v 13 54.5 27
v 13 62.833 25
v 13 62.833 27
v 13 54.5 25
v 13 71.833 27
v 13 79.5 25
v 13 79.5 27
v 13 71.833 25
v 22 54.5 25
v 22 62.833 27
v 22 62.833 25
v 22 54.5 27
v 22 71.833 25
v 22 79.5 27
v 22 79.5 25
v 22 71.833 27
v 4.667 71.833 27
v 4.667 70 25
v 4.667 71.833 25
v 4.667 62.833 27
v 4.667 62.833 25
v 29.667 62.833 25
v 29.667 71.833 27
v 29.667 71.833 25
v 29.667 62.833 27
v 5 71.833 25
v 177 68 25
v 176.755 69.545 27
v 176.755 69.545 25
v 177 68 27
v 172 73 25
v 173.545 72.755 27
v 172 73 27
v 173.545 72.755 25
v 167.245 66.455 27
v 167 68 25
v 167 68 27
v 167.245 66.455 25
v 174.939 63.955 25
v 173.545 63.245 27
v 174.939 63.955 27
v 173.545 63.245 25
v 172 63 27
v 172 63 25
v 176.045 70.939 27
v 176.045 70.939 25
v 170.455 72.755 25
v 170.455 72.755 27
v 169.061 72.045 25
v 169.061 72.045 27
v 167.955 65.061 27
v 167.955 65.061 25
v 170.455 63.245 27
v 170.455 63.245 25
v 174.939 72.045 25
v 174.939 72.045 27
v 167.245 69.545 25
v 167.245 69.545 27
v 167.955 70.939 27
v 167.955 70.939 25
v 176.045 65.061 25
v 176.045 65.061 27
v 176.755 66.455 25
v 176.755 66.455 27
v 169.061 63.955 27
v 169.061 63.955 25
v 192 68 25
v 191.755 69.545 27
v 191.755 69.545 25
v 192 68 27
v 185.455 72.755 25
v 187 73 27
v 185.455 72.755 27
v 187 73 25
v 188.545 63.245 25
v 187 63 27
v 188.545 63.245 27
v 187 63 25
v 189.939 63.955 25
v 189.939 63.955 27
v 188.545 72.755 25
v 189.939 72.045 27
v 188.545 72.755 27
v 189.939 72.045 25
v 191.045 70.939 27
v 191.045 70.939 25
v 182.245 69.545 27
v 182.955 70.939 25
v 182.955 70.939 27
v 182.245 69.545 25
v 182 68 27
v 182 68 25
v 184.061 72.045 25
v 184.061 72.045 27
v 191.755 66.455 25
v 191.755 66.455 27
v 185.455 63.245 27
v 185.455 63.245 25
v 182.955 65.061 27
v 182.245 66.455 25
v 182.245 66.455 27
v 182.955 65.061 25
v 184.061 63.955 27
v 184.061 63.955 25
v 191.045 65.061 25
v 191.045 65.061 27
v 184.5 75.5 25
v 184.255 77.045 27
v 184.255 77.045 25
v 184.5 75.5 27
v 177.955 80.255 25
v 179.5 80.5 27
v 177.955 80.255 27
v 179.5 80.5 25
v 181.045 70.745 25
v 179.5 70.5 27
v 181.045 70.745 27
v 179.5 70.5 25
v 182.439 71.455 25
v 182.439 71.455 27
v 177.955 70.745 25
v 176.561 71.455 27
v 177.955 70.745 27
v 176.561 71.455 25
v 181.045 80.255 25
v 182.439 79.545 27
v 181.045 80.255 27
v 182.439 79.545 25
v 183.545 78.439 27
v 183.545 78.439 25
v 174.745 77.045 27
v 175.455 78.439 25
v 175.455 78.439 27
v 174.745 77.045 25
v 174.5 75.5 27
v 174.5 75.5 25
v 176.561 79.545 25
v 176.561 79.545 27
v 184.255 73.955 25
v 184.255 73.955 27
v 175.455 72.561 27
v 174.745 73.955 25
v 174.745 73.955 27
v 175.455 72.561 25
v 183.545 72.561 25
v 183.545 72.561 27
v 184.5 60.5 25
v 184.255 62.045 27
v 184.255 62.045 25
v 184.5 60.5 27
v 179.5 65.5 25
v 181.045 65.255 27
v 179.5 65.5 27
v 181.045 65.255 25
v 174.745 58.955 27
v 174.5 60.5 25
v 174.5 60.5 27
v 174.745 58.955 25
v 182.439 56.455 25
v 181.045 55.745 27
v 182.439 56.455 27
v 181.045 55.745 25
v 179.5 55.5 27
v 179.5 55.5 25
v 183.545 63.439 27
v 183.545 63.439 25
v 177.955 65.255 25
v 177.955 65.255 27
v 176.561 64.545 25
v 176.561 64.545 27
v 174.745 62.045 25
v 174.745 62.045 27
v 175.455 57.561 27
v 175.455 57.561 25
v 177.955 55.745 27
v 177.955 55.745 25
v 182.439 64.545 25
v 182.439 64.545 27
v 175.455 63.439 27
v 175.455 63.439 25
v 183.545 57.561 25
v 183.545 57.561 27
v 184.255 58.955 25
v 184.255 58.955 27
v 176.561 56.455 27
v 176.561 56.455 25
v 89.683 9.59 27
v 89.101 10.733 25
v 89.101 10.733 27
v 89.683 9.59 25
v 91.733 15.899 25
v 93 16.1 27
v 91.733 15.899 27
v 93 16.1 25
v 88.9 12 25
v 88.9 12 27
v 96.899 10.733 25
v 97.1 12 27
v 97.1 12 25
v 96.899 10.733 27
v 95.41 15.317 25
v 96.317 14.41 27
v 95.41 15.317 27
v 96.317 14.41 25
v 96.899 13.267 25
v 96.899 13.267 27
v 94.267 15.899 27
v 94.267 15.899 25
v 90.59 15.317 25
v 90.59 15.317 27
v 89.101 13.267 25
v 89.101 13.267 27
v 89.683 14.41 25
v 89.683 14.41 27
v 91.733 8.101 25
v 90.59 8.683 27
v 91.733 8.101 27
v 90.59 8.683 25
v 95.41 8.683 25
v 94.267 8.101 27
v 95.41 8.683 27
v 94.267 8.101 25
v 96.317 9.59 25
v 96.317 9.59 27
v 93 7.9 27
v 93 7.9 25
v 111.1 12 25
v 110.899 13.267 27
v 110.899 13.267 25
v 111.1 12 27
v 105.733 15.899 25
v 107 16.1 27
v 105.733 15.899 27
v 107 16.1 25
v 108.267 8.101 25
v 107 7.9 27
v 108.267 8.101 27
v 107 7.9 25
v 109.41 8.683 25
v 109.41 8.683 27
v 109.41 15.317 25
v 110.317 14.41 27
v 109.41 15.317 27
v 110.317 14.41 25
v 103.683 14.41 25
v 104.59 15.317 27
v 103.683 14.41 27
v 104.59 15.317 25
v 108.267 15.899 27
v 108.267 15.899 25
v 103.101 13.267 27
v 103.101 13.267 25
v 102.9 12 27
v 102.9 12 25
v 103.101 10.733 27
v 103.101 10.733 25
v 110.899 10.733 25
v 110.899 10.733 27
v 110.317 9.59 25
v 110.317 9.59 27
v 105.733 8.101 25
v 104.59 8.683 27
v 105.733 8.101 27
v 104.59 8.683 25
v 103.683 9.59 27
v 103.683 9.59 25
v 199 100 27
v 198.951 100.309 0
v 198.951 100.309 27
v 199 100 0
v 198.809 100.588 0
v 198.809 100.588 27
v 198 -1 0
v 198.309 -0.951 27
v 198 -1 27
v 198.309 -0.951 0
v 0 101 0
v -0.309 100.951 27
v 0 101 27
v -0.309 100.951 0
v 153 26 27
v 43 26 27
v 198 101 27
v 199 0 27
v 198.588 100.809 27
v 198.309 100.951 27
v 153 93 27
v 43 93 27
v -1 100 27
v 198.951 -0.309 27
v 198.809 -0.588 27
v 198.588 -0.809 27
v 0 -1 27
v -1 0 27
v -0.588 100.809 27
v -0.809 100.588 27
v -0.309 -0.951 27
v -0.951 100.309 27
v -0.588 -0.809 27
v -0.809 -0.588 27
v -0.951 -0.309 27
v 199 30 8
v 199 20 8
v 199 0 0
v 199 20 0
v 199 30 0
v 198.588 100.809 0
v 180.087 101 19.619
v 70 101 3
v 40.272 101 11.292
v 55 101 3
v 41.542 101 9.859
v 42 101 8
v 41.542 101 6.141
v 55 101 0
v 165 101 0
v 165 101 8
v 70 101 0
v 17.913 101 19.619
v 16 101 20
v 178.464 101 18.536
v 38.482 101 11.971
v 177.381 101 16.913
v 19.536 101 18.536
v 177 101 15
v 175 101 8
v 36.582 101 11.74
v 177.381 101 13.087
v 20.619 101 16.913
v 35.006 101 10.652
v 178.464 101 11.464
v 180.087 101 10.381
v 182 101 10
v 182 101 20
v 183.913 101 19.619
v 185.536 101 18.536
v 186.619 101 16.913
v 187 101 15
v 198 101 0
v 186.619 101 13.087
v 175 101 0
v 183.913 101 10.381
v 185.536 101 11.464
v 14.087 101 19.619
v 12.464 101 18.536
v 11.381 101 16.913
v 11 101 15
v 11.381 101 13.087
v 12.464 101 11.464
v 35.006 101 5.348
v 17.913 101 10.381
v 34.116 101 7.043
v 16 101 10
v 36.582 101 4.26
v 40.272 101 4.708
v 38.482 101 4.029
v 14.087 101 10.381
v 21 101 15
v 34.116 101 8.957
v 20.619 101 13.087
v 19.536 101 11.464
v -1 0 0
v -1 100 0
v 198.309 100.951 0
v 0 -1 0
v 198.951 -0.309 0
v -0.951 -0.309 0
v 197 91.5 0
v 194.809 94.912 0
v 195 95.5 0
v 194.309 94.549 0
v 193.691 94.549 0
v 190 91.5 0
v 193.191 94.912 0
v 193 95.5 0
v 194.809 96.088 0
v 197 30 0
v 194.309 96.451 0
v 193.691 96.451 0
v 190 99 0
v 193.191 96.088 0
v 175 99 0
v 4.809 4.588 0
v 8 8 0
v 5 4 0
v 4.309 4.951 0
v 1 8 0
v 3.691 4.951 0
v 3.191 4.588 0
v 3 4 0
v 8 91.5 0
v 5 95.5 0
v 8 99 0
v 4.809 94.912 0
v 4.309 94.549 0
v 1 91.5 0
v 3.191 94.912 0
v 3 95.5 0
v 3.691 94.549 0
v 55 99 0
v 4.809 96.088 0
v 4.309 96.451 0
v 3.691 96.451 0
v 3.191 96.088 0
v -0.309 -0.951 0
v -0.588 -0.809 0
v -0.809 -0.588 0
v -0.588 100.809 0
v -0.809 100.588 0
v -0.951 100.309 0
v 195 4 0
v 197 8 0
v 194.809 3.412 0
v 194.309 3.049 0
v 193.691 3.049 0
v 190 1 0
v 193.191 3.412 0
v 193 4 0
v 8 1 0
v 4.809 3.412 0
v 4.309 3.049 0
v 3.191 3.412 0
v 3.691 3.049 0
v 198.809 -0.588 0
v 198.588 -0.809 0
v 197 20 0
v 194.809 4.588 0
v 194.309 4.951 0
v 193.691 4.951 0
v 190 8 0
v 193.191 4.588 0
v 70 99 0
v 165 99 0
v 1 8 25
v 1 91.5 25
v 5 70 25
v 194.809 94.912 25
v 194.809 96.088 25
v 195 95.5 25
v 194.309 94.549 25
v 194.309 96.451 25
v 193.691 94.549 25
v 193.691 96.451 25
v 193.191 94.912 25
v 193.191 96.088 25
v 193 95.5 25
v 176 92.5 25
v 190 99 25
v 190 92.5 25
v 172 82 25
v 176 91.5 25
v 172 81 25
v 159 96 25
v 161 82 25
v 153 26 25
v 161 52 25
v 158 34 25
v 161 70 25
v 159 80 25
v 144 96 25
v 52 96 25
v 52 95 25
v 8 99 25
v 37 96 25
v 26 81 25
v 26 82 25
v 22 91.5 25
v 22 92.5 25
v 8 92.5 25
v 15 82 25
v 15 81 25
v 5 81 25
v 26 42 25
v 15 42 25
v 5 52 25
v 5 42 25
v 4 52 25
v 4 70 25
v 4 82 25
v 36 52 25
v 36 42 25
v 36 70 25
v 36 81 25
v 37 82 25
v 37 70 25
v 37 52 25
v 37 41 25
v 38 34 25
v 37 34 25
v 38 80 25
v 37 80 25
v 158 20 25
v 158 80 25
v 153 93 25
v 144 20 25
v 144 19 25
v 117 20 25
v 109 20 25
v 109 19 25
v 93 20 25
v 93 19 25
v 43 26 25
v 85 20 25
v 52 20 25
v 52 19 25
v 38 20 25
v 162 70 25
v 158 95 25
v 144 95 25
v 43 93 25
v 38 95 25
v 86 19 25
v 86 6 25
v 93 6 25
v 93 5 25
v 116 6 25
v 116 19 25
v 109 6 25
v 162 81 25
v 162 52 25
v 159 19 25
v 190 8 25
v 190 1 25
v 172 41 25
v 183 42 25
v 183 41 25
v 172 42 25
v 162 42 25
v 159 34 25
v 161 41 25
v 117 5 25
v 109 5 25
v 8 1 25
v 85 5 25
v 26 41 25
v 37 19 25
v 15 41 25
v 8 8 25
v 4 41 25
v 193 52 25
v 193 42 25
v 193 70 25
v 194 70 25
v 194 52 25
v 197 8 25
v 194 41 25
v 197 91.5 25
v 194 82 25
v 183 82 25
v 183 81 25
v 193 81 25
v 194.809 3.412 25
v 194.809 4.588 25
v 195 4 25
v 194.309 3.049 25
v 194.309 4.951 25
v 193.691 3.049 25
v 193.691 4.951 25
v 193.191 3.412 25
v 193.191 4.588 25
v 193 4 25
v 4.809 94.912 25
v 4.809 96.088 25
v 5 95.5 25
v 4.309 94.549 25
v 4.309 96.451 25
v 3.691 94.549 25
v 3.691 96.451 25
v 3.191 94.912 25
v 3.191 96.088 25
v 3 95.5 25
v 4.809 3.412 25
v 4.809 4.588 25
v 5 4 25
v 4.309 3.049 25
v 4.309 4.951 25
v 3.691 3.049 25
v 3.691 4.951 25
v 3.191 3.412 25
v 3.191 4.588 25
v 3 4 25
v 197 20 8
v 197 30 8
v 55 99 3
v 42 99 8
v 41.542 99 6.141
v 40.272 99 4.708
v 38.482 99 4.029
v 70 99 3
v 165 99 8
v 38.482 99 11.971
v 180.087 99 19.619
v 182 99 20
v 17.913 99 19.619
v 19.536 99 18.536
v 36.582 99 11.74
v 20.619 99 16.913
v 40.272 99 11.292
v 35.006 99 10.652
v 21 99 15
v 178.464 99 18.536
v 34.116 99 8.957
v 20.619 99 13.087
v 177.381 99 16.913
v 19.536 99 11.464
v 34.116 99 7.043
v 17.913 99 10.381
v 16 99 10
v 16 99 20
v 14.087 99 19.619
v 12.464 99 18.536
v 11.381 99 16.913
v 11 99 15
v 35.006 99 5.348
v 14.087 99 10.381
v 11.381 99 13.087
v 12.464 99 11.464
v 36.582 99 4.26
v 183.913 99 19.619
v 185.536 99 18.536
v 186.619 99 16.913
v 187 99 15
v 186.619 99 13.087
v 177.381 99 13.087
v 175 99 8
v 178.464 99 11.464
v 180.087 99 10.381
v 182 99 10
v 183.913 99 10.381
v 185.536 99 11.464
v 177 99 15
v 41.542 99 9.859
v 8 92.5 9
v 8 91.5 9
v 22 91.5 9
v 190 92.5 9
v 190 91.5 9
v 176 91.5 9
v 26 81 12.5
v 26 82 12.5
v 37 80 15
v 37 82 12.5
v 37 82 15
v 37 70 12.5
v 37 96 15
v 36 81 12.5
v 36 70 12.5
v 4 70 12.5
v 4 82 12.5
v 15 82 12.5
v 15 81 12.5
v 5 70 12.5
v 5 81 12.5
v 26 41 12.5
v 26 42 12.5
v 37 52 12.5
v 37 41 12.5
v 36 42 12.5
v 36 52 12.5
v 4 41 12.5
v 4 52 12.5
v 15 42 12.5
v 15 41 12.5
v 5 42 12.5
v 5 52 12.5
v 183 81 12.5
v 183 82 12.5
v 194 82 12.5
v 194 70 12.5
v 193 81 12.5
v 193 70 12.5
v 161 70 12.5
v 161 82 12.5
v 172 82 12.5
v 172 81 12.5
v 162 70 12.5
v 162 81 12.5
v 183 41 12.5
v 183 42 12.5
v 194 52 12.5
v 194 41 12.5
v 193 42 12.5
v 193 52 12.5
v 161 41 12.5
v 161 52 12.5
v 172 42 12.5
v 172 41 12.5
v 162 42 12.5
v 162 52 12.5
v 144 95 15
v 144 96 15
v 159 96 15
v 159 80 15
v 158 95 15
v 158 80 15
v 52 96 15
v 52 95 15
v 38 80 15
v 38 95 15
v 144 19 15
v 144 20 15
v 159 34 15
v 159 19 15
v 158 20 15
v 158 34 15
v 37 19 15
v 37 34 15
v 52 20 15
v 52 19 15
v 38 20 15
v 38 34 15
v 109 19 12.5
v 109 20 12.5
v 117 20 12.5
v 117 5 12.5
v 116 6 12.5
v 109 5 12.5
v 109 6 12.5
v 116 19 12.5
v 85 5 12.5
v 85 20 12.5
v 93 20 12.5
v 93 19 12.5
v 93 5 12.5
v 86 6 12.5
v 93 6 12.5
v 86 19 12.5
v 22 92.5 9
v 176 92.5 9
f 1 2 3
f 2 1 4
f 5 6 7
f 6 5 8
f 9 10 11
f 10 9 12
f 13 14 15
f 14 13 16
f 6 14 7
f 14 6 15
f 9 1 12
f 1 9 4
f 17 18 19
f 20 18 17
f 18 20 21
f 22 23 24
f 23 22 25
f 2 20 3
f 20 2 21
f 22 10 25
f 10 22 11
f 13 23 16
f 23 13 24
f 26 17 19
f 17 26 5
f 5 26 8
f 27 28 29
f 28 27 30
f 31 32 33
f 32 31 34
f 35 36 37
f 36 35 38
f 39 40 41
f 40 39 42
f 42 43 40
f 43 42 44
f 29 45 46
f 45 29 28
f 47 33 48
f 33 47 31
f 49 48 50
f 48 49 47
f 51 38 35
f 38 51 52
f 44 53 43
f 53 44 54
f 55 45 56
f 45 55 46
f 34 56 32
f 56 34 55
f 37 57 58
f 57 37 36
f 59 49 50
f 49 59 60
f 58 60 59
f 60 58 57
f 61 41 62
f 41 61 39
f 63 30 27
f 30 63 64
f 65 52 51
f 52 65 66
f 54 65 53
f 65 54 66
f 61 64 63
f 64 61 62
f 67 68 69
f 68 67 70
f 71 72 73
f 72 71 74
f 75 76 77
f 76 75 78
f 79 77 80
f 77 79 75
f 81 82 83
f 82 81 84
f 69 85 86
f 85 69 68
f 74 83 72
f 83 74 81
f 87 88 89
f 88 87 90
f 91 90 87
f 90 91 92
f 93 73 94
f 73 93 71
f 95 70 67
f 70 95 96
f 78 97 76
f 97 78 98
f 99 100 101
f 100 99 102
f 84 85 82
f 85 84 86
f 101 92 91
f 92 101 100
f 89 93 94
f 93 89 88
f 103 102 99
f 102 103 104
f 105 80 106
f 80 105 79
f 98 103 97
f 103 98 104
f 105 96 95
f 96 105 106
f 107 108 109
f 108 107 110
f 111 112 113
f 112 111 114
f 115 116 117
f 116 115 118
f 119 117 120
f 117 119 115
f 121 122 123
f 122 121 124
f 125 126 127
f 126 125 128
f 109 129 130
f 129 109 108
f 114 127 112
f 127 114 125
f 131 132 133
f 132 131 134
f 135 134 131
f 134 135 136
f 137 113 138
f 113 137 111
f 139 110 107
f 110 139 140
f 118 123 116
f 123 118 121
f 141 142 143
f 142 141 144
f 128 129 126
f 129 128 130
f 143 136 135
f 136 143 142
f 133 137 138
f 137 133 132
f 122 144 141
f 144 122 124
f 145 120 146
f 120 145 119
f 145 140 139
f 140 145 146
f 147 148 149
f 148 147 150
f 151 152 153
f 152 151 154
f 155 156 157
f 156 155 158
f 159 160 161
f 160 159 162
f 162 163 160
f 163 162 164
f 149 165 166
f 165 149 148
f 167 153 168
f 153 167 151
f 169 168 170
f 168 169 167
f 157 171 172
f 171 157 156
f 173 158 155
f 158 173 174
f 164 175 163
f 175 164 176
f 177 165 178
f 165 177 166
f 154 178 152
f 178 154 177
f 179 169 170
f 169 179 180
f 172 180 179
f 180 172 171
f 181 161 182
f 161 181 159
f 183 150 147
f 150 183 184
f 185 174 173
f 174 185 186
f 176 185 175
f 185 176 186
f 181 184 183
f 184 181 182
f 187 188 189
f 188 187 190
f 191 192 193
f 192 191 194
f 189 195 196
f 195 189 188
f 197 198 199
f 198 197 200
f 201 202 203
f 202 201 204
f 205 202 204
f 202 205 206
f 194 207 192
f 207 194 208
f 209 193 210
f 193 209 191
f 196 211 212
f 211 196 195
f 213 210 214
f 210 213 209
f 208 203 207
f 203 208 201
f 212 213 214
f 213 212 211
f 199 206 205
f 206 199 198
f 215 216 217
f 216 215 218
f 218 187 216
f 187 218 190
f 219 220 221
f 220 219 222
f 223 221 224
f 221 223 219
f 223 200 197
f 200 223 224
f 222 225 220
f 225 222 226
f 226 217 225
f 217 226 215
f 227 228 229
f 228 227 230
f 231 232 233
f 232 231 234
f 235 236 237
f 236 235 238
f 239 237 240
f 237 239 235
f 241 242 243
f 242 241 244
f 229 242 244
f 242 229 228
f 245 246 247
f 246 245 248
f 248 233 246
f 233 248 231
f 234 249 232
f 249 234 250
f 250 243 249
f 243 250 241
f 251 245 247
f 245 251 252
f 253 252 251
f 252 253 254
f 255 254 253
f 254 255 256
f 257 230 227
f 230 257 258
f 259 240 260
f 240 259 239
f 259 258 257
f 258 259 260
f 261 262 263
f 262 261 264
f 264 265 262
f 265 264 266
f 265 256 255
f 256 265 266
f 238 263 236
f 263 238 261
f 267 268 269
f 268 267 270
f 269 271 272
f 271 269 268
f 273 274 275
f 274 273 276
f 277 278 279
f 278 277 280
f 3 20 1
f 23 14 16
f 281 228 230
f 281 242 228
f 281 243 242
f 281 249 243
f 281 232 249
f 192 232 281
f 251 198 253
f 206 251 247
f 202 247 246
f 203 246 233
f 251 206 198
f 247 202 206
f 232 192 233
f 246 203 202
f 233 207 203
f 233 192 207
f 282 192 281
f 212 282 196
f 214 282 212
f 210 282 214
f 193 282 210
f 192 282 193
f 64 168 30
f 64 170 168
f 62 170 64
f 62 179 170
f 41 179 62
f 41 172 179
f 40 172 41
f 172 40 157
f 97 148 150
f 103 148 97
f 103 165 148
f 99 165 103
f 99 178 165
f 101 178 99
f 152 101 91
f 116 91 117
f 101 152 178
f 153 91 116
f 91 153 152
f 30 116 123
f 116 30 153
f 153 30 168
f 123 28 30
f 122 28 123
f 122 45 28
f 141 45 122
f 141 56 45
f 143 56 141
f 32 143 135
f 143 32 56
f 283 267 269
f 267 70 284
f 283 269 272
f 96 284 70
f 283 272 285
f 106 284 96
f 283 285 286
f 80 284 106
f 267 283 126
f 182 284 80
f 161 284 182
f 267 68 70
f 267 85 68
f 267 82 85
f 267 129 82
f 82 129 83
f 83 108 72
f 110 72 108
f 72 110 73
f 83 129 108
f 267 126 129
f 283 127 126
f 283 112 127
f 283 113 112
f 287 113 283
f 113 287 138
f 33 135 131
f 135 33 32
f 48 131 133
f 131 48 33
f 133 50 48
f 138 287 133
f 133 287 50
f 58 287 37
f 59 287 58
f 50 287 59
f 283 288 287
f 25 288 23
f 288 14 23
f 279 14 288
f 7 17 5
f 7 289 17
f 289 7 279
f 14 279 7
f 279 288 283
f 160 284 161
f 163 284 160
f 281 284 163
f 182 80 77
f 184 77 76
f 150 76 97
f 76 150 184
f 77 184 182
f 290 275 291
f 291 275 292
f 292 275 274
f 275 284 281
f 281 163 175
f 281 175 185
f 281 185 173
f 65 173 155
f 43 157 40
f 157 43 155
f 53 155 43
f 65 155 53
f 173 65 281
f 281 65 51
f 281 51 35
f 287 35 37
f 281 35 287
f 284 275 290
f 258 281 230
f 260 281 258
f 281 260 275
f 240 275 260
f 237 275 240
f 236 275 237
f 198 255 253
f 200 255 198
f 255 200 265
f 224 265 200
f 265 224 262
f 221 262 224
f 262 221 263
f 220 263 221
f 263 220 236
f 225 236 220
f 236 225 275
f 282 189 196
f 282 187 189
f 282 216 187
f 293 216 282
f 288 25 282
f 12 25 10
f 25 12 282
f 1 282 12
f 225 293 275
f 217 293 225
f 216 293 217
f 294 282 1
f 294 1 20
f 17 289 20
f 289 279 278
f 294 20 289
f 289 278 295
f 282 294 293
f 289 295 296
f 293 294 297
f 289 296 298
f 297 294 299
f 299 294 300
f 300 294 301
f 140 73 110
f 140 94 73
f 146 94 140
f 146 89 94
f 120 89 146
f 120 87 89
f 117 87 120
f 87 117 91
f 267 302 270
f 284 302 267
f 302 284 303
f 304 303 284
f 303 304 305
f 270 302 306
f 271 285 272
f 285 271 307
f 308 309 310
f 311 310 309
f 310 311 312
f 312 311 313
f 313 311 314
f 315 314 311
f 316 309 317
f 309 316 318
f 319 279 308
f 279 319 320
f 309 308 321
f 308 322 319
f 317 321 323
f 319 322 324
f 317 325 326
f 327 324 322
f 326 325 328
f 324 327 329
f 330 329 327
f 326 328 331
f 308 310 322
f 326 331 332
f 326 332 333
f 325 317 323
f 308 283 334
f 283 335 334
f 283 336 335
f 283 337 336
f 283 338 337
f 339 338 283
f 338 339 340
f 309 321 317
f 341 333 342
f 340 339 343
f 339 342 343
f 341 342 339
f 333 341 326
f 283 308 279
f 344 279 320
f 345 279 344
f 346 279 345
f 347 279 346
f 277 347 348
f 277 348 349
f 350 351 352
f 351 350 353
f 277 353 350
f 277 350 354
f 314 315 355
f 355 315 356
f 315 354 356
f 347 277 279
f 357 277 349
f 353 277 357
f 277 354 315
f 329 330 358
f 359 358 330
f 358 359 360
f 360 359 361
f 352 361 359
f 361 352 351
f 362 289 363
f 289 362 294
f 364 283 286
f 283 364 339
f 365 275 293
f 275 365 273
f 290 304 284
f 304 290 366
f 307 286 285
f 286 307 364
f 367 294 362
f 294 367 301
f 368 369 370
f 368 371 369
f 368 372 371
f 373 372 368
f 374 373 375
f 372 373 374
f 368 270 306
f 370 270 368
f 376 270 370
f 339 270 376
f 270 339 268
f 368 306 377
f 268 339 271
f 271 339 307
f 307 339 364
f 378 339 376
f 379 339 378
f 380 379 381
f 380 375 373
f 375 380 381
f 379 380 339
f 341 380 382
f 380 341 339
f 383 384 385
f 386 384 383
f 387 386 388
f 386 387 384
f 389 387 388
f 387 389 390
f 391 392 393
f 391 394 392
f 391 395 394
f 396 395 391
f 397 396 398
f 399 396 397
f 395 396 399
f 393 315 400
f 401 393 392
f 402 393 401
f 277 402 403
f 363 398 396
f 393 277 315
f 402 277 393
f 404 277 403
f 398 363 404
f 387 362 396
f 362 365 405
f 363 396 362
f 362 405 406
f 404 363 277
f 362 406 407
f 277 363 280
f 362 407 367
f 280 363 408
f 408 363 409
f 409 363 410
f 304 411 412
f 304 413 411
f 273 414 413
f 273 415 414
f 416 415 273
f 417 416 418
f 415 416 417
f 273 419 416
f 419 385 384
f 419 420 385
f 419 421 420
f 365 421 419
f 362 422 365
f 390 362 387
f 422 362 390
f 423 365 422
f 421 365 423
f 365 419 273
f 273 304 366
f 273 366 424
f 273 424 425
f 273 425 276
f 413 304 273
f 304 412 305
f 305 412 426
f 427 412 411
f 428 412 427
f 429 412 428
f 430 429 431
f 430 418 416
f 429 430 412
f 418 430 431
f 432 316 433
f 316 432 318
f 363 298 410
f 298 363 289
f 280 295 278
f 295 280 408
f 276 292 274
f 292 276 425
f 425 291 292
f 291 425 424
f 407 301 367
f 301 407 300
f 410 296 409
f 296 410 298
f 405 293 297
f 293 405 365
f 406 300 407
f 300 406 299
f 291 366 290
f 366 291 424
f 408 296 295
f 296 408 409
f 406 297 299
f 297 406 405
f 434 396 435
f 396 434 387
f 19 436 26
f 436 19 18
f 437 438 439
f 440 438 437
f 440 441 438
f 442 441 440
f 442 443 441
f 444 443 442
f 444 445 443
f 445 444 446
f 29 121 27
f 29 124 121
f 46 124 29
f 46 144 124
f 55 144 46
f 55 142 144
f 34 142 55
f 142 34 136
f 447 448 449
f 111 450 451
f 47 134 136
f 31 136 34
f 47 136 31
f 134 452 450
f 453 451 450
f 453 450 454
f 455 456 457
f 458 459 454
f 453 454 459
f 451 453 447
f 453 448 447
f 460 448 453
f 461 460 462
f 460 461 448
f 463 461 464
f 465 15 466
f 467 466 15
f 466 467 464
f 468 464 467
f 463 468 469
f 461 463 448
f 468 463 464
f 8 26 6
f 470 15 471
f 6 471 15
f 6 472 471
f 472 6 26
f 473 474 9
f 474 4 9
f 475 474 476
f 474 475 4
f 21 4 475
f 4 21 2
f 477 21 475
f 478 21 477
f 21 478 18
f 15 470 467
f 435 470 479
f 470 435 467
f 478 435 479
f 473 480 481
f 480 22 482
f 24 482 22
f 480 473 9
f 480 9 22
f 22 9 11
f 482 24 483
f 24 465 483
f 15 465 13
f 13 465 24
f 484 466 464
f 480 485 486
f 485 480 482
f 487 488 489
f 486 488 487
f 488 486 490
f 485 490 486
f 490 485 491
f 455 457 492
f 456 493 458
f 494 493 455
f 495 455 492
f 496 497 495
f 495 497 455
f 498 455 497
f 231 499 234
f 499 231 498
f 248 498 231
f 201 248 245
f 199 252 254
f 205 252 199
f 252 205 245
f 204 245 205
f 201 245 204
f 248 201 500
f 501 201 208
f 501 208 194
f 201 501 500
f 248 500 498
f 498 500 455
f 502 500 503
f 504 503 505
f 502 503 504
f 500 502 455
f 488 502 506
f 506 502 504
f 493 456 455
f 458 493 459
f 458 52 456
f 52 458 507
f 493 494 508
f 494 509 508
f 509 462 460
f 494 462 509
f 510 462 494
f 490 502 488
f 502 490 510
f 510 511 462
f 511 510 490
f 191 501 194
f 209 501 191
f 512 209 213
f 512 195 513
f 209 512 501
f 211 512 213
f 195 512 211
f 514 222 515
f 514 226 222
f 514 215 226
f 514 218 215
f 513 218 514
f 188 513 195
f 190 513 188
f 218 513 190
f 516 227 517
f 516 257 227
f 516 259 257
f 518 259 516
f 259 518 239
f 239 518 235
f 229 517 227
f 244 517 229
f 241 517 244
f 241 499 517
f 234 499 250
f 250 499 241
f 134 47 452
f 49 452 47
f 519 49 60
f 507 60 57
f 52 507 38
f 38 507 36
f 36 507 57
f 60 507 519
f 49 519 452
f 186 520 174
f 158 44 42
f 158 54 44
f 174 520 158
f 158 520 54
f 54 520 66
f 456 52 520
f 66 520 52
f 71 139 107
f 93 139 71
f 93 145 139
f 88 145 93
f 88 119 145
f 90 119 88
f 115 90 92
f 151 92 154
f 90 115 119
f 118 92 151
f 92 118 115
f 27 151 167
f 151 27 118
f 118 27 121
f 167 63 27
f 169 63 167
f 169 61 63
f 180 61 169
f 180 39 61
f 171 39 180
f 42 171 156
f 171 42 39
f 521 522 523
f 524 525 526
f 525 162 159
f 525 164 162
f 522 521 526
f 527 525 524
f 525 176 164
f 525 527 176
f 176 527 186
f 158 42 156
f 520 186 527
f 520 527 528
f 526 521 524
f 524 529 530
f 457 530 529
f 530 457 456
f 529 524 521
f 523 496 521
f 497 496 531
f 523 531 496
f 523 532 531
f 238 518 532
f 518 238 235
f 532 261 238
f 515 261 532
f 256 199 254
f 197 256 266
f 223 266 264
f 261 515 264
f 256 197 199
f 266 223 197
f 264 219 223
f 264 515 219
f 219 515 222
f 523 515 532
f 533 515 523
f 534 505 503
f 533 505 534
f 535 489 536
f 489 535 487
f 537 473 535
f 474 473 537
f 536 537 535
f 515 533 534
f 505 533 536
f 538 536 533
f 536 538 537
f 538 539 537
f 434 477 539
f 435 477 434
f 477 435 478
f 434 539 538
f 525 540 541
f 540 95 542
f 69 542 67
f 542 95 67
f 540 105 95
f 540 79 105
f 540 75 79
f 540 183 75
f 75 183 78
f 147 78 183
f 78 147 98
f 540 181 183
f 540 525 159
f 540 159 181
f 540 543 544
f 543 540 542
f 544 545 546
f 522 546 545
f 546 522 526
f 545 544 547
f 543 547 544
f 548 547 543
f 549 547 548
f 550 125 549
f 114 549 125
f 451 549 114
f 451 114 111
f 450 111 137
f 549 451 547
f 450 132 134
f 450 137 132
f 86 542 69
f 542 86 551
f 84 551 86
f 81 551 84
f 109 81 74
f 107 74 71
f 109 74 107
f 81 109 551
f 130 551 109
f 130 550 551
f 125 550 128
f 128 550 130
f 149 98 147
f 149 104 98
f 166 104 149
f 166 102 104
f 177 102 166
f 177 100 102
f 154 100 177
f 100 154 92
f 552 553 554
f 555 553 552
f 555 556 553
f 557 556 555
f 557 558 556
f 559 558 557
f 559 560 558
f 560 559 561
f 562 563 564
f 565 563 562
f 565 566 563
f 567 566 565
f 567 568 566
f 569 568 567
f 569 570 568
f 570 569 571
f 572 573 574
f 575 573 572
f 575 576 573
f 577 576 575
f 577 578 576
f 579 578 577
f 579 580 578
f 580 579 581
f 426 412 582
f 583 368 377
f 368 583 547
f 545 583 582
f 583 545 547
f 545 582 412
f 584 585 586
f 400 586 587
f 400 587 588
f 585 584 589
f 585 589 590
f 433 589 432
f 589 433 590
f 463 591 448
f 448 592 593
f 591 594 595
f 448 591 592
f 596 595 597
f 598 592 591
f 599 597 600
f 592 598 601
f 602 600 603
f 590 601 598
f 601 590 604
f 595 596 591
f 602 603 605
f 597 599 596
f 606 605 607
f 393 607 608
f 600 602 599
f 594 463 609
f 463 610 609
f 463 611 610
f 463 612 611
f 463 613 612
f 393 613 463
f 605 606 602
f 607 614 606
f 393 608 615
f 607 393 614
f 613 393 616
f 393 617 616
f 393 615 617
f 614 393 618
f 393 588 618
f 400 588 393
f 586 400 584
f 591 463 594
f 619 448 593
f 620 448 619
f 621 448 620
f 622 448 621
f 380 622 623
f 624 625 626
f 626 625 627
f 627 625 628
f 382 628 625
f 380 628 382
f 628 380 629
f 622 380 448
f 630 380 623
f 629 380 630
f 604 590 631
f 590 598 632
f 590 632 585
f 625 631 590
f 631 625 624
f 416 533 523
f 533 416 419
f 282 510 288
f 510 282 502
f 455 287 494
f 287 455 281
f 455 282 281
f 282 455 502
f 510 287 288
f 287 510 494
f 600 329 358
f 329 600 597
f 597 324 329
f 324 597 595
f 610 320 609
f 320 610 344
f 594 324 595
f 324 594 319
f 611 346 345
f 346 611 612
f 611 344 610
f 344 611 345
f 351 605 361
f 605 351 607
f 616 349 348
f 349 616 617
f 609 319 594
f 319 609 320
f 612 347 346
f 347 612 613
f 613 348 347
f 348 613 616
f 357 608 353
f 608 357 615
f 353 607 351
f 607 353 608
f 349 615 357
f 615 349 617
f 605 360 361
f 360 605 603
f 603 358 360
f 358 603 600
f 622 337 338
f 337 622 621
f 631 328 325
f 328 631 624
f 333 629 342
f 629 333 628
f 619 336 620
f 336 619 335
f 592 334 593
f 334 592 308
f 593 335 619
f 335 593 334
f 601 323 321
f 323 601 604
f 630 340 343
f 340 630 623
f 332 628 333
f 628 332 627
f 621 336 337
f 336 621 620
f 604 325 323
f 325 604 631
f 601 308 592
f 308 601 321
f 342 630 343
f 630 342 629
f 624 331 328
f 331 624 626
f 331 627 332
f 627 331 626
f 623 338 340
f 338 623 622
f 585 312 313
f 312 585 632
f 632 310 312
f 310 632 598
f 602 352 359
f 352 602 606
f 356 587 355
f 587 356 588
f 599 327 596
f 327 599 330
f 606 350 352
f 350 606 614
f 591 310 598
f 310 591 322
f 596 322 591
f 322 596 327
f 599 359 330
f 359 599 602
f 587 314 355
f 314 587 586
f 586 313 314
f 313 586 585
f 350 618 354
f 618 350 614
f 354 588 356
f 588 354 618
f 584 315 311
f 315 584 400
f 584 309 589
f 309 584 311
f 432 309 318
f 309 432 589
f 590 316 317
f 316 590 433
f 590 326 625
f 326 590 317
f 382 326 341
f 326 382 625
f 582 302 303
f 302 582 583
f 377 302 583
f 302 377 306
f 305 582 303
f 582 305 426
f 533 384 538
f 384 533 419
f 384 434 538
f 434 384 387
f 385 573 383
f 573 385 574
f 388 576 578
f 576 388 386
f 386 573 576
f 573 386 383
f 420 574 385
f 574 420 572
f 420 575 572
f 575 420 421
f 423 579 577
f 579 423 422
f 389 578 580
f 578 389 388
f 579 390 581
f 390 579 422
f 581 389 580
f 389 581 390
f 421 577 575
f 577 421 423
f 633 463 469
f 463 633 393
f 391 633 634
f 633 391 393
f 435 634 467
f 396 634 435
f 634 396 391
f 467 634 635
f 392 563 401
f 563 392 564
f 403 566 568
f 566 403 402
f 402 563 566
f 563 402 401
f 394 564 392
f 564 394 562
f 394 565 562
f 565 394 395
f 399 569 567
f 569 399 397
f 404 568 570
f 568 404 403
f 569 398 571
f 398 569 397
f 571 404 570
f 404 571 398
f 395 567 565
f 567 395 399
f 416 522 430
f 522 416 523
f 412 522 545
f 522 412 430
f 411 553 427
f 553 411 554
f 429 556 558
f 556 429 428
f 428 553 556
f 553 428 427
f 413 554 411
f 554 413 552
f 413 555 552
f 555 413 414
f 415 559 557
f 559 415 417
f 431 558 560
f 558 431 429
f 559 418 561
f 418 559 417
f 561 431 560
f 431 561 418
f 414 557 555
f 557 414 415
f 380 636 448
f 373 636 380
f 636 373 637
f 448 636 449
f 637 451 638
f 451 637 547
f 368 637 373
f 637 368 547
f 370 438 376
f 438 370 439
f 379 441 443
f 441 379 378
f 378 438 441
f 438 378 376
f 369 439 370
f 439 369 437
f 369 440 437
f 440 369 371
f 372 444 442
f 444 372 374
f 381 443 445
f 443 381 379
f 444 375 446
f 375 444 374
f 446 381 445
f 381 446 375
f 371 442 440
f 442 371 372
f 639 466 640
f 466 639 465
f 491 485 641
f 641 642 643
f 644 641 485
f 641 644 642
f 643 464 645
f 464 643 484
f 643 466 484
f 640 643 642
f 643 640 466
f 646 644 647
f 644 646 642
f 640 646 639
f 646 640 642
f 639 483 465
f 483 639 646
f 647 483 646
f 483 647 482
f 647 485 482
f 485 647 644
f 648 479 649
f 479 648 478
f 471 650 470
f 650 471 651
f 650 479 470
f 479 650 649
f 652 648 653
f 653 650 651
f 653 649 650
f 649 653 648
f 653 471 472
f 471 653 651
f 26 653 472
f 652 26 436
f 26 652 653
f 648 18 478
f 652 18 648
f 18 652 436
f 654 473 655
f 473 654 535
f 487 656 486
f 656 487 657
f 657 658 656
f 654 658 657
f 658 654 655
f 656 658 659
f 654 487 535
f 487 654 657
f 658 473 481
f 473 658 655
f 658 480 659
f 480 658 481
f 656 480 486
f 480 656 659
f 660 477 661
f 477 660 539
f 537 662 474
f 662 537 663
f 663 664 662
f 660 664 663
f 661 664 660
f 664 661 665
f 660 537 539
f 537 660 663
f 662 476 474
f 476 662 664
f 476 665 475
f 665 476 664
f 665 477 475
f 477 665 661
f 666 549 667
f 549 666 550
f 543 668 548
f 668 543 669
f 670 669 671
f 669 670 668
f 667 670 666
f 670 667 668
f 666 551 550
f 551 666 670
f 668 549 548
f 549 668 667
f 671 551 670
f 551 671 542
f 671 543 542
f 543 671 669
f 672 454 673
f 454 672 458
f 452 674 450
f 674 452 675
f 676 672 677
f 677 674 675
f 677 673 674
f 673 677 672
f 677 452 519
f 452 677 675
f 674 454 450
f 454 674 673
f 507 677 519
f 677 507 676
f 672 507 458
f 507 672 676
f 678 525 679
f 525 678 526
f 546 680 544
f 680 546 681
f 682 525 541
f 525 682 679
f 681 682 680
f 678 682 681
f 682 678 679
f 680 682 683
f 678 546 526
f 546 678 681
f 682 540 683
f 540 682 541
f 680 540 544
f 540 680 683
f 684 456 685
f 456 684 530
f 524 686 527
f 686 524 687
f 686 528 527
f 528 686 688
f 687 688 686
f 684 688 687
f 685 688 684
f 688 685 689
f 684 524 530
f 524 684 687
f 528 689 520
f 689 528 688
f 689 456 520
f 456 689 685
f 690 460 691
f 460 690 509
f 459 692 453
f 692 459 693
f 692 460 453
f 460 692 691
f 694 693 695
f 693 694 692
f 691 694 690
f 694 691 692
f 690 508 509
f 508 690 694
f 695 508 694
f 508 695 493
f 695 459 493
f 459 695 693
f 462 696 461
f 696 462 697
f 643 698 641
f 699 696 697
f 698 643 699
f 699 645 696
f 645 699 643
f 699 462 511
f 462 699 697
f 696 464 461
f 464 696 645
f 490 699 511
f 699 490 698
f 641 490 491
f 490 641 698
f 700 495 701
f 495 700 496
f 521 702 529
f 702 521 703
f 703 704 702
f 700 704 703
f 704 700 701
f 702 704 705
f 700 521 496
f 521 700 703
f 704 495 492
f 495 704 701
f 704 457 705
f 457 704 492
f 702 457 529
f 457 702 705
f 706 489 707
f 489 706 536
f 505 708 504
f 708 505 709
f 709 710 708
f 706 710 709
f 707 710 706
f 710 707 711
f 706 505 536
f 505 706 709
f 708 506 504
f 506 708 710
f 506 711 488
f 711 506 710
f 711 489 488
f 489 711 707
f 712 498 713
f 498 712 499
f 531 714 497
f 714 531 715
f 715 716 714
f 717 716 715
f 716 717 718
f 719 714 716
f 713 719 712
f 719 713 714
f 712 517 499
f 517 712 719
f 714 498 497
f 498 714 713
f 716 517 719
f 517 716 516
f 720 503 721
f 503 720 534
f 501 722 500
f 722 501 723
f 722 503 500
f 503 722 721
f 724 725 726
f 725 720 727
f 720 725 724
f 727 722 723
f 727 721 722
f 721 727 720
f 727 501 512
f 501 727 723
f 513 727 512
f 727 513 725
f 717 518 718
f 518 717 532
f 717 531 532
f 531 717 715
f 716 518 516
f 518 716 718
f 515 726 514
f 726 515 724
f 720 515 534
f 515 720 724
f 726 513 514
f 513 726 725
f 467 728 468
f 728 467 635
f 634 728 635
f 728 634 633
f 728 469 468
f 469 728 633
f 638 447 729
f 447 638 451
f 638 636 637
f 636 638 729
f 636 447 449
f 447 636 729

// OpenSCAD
// file: common.scad
screenExtW = 120;
screenExtH = 75;
screenIntW = 110;
screenIntH = 67;
screenZ = 3;
screenIntX = 5;
screenIntY = 6;

H  = 100;
W = 44 * 2 + screenIntW; // 198
Z   = 25;
thickness = 1;

dpadX = 13;
dpadY = 54.5;
buttonsX = W-26;
buttonsY = 68;

jackX = 38;
jackZ = 8;

volumeX = 55;
volumeW = 15;
volumeH = 5;

screenX = 38;
screenY = 20;

pcbW = 31;
pcbH = 39;

pillar = 8;
pillarHole = 1;

resetStartPcbW =30;
resetStartPcbH = 13;

batteryW = 61;
batteryH = 36;
batteryZ = 8;

module holder (x, y, w, h, attachH, attachW) {
        attachThick = 1;
        // top (left)
        translate([x-attachW+attachThick, y, Z-attachH]) cube([attachW, attachThick, attachH]);
        // left (top)
        translate([x, y-attachW, Z-attachH]) cube([attachThick, attachW, attachH]);
        // top (right)
        translate([x-w-attachThick, y, Z-attachH]) cube([attachW, attachThick, attachH]);
        // right (top)
        translate([x-w-attachThick, y-attachW, Z-attachH]) cube([attachThick, attachW, attachH]);
        // bottom(left)
        translate([x-attachW+attachThick, y-h-attachThick, Z-attachH]) cube([attachW, attachThick, attachH]);
        // left (bottom)
        translate([x, y-h-attachThick, Z-attachH]) cube([attachThick, attachW, attachH]);
        // top (right)
        translate([x-w-attachThick, y-h-attachThick, Z-attachH]) cube([attachW, attachThick, attachH]);
        // right (bottom)
        translate([x-w-attachThick, y-h-attachThick, Z-attachH]) cube([attachThick, attachW, attachH]);
}
// main file
include <common.scad>;

bigButtonX = 16;
bigButtonY = 10;

DEBUG=false;

difference () {
    union () {
        difference () {
            // box
            minkowski() {
                cube([W,H,thickness+Z]);
                cylinder(r=1,h=1,  $fn=20);
            }
            // extrusion
            translate([thickness, thickness, -1]) cube([W-(2*thickness) ,H-(2 * thickness),Z+1]);

            // screen extrusion
            translate([screenX+screenIntX, screenY+screenIntY, Z-1]) cube([screenIntW, screenIntH, screenZ+1]);

            dpad(dpadX, dpadY);
            buttons(buttonsX, buttonsY);
            startResetHoles(W/2+thickness, 12);

            // top d-pad button - hole
            translate([bigButtonX, H+thickness+1, Z-bigButtonY]) rotate([90, 0, 0]) cylinder(r=5,h=thickness*20);

            // top buttons button - hole
            translate([W-bigButtonX, H+thickness+1, Z-bigButtonY]) rotate([90, 0, 0]) cylinder(r=5,h=thickness*20);

            // Jack
            translate([jackX, H+thickness+1, jackZ]) rotate([90, 0, 0]) cylinder(r=4,h=thickness*20);

            // volume
            translate([volumeX, H-thickness-5, -1]) cube([volumeW, 10, volumeH-1]);

            // power button extrusion
            translate([165, H-thickness-1, -1]) cube([10, 4+10, 8+1]);
            // USBextrusion
            translate([W-thickness-1, 20, -1]) cube([10, 10, 8+1]);
        }

        // top button support
        color("purple") translate([pillar, H-8.5, Z-bigButtonX]) cube([14, 1, bigButtonX]);
        color("violet") translate([W-pillar-14, H-8.5, Z-bigButtonX]) cube([14, 1, bigButtonX]);

        // pillars for screws
        color("blue") {
            pillar(0, 0);                               // bottom dpad
            pillar(0, H-pillar-0.5);             // top dpad
            pillar(W-pillar, 0);                    // bottom buttons
            pillar(W-pillar, H-pillar-0.5);  // top buttons
        }

        color("red") holder(36, 81, pcbW, pcbH, 12.5, 11); // dpad holder
        color("yellow") holder(193, 81, pcbW, pcbH, 12.5, 11); // dpad holder
        color("green") holder(screenX+screenExtW, screenY + screenExtH, screenExtW, screenExtH, 10, 15); // screen holder
        
        color("red") holder(116, 19, resetStartPcbW, resetStartPcbH, 12.5, 8); // start reset holder
    }
    // differences to print some part (for trial & errors)
    // for dpad and buttons
    //translate([-thickness*2, H-17, 0]) cube([W+thickness*4, 42, Z+10]); // top
    //translate([-thickness*2, -thickness*2, 0]) cube([W+thickness*4, 42, Z+10]); // bottom
    //translate([W-60, 0, 0]) cube([70, H+10, Z+10]); // remove buttons
    //translate([-thickness, 0, 0]) cube([thickness+3, H+10, Z+10]);  // remove dpad border
    //translate([-thickness*2, -thickness*2, 0]) cube([70, H+10, Z+10]); // remove DPAD
    //translate([W-thickness-1, 0, 0]) cube([thickness+3, H+10, Z+10]);  // remove button border
    // for screen
    //translate([-thickness*2, -thickness*2, 0]) cube([W+thickness*4, 20, Z+10]); // bottom
    //translate([-thickness*2, H-thickness, 0]) cube([W+thickness*4, 40, Z+10]); // top
    //translate([W-37, 0, 0]) cube([50, H+10, Z+10]);  // remove buttons
    //translate([-thickness*2, -thickness*2, 0]) cube([39, H+10, Z+10]); // remove DPAD
}

if (DEBUG) {
    // screen simulation
    translate([screenX, screenY, Z -screenZ]) {
        difference() {
            cube([screenExtW, screenExtH, screenZ]);
            translate([screenIntX, screenIntY, 0])cube([screenIntW, screenIntH, screenZ]);
        }
    }
    //  D-pad board simulation
    translate([5, 42, 15]) cube([pcbW, pcbH, 1]);
    //  buttons board simulation
    translate([W-5-pcbW, 42, 15]) cube([pcbW, pcbH, 1]);
}

module startResetHoles(x, y) {
    buttonR = 4.1;
    d = 14;
    translate([x-d/2, y, Z-1]) cylinder(r=buttonR,h=Z*2, $fn=20);
    translate([x +d/2, y, Z-1]) cylinder(r=buttonR,h=Z*2, $fn=20);
}

module buttons(x, y) {
    buttonR = 5;
    d = 15;
    translate([x, y, Z-1]) cylinder(r=buttonR,h=Z*2, $fn=20);
    translate([x+d, y, Z-1]) cylinder(r=buttonR,h=Z*2, $fn=20);
    translate([x+d/2, y+d/2, Z-1]) cylinder(r=buttonR,h=Z*2, $fn=20);
    translate([x+d/2, y-d/2, Z-1]) cylinder(r=buttonR,h=Z*2, $fn=20);
}

module dpad(crossX, crossY) {
    translate([crossX, crossY, Z-2]) {
        crossW = 25;
        crossH = 9;
        cube([crossH, crossW, 10]);
        translate([-crossW/3,crossW/3,0])  cube([crossW, crossH, 10]);
        
        translate([4.25, 12.5, 0]) cylinder(r=27/2, h=1, $fn=40);
    }
}

module pillar(x, y) {
    translate([x, y, 0]) {
        difference() {
            cube([pillar, pillar, Z]);
            translate([pillar/2, pillar/2, -(Z-10)]) cylinder(r=pillarHole,h=Z*2, $fn=10);
        }
    }
}
